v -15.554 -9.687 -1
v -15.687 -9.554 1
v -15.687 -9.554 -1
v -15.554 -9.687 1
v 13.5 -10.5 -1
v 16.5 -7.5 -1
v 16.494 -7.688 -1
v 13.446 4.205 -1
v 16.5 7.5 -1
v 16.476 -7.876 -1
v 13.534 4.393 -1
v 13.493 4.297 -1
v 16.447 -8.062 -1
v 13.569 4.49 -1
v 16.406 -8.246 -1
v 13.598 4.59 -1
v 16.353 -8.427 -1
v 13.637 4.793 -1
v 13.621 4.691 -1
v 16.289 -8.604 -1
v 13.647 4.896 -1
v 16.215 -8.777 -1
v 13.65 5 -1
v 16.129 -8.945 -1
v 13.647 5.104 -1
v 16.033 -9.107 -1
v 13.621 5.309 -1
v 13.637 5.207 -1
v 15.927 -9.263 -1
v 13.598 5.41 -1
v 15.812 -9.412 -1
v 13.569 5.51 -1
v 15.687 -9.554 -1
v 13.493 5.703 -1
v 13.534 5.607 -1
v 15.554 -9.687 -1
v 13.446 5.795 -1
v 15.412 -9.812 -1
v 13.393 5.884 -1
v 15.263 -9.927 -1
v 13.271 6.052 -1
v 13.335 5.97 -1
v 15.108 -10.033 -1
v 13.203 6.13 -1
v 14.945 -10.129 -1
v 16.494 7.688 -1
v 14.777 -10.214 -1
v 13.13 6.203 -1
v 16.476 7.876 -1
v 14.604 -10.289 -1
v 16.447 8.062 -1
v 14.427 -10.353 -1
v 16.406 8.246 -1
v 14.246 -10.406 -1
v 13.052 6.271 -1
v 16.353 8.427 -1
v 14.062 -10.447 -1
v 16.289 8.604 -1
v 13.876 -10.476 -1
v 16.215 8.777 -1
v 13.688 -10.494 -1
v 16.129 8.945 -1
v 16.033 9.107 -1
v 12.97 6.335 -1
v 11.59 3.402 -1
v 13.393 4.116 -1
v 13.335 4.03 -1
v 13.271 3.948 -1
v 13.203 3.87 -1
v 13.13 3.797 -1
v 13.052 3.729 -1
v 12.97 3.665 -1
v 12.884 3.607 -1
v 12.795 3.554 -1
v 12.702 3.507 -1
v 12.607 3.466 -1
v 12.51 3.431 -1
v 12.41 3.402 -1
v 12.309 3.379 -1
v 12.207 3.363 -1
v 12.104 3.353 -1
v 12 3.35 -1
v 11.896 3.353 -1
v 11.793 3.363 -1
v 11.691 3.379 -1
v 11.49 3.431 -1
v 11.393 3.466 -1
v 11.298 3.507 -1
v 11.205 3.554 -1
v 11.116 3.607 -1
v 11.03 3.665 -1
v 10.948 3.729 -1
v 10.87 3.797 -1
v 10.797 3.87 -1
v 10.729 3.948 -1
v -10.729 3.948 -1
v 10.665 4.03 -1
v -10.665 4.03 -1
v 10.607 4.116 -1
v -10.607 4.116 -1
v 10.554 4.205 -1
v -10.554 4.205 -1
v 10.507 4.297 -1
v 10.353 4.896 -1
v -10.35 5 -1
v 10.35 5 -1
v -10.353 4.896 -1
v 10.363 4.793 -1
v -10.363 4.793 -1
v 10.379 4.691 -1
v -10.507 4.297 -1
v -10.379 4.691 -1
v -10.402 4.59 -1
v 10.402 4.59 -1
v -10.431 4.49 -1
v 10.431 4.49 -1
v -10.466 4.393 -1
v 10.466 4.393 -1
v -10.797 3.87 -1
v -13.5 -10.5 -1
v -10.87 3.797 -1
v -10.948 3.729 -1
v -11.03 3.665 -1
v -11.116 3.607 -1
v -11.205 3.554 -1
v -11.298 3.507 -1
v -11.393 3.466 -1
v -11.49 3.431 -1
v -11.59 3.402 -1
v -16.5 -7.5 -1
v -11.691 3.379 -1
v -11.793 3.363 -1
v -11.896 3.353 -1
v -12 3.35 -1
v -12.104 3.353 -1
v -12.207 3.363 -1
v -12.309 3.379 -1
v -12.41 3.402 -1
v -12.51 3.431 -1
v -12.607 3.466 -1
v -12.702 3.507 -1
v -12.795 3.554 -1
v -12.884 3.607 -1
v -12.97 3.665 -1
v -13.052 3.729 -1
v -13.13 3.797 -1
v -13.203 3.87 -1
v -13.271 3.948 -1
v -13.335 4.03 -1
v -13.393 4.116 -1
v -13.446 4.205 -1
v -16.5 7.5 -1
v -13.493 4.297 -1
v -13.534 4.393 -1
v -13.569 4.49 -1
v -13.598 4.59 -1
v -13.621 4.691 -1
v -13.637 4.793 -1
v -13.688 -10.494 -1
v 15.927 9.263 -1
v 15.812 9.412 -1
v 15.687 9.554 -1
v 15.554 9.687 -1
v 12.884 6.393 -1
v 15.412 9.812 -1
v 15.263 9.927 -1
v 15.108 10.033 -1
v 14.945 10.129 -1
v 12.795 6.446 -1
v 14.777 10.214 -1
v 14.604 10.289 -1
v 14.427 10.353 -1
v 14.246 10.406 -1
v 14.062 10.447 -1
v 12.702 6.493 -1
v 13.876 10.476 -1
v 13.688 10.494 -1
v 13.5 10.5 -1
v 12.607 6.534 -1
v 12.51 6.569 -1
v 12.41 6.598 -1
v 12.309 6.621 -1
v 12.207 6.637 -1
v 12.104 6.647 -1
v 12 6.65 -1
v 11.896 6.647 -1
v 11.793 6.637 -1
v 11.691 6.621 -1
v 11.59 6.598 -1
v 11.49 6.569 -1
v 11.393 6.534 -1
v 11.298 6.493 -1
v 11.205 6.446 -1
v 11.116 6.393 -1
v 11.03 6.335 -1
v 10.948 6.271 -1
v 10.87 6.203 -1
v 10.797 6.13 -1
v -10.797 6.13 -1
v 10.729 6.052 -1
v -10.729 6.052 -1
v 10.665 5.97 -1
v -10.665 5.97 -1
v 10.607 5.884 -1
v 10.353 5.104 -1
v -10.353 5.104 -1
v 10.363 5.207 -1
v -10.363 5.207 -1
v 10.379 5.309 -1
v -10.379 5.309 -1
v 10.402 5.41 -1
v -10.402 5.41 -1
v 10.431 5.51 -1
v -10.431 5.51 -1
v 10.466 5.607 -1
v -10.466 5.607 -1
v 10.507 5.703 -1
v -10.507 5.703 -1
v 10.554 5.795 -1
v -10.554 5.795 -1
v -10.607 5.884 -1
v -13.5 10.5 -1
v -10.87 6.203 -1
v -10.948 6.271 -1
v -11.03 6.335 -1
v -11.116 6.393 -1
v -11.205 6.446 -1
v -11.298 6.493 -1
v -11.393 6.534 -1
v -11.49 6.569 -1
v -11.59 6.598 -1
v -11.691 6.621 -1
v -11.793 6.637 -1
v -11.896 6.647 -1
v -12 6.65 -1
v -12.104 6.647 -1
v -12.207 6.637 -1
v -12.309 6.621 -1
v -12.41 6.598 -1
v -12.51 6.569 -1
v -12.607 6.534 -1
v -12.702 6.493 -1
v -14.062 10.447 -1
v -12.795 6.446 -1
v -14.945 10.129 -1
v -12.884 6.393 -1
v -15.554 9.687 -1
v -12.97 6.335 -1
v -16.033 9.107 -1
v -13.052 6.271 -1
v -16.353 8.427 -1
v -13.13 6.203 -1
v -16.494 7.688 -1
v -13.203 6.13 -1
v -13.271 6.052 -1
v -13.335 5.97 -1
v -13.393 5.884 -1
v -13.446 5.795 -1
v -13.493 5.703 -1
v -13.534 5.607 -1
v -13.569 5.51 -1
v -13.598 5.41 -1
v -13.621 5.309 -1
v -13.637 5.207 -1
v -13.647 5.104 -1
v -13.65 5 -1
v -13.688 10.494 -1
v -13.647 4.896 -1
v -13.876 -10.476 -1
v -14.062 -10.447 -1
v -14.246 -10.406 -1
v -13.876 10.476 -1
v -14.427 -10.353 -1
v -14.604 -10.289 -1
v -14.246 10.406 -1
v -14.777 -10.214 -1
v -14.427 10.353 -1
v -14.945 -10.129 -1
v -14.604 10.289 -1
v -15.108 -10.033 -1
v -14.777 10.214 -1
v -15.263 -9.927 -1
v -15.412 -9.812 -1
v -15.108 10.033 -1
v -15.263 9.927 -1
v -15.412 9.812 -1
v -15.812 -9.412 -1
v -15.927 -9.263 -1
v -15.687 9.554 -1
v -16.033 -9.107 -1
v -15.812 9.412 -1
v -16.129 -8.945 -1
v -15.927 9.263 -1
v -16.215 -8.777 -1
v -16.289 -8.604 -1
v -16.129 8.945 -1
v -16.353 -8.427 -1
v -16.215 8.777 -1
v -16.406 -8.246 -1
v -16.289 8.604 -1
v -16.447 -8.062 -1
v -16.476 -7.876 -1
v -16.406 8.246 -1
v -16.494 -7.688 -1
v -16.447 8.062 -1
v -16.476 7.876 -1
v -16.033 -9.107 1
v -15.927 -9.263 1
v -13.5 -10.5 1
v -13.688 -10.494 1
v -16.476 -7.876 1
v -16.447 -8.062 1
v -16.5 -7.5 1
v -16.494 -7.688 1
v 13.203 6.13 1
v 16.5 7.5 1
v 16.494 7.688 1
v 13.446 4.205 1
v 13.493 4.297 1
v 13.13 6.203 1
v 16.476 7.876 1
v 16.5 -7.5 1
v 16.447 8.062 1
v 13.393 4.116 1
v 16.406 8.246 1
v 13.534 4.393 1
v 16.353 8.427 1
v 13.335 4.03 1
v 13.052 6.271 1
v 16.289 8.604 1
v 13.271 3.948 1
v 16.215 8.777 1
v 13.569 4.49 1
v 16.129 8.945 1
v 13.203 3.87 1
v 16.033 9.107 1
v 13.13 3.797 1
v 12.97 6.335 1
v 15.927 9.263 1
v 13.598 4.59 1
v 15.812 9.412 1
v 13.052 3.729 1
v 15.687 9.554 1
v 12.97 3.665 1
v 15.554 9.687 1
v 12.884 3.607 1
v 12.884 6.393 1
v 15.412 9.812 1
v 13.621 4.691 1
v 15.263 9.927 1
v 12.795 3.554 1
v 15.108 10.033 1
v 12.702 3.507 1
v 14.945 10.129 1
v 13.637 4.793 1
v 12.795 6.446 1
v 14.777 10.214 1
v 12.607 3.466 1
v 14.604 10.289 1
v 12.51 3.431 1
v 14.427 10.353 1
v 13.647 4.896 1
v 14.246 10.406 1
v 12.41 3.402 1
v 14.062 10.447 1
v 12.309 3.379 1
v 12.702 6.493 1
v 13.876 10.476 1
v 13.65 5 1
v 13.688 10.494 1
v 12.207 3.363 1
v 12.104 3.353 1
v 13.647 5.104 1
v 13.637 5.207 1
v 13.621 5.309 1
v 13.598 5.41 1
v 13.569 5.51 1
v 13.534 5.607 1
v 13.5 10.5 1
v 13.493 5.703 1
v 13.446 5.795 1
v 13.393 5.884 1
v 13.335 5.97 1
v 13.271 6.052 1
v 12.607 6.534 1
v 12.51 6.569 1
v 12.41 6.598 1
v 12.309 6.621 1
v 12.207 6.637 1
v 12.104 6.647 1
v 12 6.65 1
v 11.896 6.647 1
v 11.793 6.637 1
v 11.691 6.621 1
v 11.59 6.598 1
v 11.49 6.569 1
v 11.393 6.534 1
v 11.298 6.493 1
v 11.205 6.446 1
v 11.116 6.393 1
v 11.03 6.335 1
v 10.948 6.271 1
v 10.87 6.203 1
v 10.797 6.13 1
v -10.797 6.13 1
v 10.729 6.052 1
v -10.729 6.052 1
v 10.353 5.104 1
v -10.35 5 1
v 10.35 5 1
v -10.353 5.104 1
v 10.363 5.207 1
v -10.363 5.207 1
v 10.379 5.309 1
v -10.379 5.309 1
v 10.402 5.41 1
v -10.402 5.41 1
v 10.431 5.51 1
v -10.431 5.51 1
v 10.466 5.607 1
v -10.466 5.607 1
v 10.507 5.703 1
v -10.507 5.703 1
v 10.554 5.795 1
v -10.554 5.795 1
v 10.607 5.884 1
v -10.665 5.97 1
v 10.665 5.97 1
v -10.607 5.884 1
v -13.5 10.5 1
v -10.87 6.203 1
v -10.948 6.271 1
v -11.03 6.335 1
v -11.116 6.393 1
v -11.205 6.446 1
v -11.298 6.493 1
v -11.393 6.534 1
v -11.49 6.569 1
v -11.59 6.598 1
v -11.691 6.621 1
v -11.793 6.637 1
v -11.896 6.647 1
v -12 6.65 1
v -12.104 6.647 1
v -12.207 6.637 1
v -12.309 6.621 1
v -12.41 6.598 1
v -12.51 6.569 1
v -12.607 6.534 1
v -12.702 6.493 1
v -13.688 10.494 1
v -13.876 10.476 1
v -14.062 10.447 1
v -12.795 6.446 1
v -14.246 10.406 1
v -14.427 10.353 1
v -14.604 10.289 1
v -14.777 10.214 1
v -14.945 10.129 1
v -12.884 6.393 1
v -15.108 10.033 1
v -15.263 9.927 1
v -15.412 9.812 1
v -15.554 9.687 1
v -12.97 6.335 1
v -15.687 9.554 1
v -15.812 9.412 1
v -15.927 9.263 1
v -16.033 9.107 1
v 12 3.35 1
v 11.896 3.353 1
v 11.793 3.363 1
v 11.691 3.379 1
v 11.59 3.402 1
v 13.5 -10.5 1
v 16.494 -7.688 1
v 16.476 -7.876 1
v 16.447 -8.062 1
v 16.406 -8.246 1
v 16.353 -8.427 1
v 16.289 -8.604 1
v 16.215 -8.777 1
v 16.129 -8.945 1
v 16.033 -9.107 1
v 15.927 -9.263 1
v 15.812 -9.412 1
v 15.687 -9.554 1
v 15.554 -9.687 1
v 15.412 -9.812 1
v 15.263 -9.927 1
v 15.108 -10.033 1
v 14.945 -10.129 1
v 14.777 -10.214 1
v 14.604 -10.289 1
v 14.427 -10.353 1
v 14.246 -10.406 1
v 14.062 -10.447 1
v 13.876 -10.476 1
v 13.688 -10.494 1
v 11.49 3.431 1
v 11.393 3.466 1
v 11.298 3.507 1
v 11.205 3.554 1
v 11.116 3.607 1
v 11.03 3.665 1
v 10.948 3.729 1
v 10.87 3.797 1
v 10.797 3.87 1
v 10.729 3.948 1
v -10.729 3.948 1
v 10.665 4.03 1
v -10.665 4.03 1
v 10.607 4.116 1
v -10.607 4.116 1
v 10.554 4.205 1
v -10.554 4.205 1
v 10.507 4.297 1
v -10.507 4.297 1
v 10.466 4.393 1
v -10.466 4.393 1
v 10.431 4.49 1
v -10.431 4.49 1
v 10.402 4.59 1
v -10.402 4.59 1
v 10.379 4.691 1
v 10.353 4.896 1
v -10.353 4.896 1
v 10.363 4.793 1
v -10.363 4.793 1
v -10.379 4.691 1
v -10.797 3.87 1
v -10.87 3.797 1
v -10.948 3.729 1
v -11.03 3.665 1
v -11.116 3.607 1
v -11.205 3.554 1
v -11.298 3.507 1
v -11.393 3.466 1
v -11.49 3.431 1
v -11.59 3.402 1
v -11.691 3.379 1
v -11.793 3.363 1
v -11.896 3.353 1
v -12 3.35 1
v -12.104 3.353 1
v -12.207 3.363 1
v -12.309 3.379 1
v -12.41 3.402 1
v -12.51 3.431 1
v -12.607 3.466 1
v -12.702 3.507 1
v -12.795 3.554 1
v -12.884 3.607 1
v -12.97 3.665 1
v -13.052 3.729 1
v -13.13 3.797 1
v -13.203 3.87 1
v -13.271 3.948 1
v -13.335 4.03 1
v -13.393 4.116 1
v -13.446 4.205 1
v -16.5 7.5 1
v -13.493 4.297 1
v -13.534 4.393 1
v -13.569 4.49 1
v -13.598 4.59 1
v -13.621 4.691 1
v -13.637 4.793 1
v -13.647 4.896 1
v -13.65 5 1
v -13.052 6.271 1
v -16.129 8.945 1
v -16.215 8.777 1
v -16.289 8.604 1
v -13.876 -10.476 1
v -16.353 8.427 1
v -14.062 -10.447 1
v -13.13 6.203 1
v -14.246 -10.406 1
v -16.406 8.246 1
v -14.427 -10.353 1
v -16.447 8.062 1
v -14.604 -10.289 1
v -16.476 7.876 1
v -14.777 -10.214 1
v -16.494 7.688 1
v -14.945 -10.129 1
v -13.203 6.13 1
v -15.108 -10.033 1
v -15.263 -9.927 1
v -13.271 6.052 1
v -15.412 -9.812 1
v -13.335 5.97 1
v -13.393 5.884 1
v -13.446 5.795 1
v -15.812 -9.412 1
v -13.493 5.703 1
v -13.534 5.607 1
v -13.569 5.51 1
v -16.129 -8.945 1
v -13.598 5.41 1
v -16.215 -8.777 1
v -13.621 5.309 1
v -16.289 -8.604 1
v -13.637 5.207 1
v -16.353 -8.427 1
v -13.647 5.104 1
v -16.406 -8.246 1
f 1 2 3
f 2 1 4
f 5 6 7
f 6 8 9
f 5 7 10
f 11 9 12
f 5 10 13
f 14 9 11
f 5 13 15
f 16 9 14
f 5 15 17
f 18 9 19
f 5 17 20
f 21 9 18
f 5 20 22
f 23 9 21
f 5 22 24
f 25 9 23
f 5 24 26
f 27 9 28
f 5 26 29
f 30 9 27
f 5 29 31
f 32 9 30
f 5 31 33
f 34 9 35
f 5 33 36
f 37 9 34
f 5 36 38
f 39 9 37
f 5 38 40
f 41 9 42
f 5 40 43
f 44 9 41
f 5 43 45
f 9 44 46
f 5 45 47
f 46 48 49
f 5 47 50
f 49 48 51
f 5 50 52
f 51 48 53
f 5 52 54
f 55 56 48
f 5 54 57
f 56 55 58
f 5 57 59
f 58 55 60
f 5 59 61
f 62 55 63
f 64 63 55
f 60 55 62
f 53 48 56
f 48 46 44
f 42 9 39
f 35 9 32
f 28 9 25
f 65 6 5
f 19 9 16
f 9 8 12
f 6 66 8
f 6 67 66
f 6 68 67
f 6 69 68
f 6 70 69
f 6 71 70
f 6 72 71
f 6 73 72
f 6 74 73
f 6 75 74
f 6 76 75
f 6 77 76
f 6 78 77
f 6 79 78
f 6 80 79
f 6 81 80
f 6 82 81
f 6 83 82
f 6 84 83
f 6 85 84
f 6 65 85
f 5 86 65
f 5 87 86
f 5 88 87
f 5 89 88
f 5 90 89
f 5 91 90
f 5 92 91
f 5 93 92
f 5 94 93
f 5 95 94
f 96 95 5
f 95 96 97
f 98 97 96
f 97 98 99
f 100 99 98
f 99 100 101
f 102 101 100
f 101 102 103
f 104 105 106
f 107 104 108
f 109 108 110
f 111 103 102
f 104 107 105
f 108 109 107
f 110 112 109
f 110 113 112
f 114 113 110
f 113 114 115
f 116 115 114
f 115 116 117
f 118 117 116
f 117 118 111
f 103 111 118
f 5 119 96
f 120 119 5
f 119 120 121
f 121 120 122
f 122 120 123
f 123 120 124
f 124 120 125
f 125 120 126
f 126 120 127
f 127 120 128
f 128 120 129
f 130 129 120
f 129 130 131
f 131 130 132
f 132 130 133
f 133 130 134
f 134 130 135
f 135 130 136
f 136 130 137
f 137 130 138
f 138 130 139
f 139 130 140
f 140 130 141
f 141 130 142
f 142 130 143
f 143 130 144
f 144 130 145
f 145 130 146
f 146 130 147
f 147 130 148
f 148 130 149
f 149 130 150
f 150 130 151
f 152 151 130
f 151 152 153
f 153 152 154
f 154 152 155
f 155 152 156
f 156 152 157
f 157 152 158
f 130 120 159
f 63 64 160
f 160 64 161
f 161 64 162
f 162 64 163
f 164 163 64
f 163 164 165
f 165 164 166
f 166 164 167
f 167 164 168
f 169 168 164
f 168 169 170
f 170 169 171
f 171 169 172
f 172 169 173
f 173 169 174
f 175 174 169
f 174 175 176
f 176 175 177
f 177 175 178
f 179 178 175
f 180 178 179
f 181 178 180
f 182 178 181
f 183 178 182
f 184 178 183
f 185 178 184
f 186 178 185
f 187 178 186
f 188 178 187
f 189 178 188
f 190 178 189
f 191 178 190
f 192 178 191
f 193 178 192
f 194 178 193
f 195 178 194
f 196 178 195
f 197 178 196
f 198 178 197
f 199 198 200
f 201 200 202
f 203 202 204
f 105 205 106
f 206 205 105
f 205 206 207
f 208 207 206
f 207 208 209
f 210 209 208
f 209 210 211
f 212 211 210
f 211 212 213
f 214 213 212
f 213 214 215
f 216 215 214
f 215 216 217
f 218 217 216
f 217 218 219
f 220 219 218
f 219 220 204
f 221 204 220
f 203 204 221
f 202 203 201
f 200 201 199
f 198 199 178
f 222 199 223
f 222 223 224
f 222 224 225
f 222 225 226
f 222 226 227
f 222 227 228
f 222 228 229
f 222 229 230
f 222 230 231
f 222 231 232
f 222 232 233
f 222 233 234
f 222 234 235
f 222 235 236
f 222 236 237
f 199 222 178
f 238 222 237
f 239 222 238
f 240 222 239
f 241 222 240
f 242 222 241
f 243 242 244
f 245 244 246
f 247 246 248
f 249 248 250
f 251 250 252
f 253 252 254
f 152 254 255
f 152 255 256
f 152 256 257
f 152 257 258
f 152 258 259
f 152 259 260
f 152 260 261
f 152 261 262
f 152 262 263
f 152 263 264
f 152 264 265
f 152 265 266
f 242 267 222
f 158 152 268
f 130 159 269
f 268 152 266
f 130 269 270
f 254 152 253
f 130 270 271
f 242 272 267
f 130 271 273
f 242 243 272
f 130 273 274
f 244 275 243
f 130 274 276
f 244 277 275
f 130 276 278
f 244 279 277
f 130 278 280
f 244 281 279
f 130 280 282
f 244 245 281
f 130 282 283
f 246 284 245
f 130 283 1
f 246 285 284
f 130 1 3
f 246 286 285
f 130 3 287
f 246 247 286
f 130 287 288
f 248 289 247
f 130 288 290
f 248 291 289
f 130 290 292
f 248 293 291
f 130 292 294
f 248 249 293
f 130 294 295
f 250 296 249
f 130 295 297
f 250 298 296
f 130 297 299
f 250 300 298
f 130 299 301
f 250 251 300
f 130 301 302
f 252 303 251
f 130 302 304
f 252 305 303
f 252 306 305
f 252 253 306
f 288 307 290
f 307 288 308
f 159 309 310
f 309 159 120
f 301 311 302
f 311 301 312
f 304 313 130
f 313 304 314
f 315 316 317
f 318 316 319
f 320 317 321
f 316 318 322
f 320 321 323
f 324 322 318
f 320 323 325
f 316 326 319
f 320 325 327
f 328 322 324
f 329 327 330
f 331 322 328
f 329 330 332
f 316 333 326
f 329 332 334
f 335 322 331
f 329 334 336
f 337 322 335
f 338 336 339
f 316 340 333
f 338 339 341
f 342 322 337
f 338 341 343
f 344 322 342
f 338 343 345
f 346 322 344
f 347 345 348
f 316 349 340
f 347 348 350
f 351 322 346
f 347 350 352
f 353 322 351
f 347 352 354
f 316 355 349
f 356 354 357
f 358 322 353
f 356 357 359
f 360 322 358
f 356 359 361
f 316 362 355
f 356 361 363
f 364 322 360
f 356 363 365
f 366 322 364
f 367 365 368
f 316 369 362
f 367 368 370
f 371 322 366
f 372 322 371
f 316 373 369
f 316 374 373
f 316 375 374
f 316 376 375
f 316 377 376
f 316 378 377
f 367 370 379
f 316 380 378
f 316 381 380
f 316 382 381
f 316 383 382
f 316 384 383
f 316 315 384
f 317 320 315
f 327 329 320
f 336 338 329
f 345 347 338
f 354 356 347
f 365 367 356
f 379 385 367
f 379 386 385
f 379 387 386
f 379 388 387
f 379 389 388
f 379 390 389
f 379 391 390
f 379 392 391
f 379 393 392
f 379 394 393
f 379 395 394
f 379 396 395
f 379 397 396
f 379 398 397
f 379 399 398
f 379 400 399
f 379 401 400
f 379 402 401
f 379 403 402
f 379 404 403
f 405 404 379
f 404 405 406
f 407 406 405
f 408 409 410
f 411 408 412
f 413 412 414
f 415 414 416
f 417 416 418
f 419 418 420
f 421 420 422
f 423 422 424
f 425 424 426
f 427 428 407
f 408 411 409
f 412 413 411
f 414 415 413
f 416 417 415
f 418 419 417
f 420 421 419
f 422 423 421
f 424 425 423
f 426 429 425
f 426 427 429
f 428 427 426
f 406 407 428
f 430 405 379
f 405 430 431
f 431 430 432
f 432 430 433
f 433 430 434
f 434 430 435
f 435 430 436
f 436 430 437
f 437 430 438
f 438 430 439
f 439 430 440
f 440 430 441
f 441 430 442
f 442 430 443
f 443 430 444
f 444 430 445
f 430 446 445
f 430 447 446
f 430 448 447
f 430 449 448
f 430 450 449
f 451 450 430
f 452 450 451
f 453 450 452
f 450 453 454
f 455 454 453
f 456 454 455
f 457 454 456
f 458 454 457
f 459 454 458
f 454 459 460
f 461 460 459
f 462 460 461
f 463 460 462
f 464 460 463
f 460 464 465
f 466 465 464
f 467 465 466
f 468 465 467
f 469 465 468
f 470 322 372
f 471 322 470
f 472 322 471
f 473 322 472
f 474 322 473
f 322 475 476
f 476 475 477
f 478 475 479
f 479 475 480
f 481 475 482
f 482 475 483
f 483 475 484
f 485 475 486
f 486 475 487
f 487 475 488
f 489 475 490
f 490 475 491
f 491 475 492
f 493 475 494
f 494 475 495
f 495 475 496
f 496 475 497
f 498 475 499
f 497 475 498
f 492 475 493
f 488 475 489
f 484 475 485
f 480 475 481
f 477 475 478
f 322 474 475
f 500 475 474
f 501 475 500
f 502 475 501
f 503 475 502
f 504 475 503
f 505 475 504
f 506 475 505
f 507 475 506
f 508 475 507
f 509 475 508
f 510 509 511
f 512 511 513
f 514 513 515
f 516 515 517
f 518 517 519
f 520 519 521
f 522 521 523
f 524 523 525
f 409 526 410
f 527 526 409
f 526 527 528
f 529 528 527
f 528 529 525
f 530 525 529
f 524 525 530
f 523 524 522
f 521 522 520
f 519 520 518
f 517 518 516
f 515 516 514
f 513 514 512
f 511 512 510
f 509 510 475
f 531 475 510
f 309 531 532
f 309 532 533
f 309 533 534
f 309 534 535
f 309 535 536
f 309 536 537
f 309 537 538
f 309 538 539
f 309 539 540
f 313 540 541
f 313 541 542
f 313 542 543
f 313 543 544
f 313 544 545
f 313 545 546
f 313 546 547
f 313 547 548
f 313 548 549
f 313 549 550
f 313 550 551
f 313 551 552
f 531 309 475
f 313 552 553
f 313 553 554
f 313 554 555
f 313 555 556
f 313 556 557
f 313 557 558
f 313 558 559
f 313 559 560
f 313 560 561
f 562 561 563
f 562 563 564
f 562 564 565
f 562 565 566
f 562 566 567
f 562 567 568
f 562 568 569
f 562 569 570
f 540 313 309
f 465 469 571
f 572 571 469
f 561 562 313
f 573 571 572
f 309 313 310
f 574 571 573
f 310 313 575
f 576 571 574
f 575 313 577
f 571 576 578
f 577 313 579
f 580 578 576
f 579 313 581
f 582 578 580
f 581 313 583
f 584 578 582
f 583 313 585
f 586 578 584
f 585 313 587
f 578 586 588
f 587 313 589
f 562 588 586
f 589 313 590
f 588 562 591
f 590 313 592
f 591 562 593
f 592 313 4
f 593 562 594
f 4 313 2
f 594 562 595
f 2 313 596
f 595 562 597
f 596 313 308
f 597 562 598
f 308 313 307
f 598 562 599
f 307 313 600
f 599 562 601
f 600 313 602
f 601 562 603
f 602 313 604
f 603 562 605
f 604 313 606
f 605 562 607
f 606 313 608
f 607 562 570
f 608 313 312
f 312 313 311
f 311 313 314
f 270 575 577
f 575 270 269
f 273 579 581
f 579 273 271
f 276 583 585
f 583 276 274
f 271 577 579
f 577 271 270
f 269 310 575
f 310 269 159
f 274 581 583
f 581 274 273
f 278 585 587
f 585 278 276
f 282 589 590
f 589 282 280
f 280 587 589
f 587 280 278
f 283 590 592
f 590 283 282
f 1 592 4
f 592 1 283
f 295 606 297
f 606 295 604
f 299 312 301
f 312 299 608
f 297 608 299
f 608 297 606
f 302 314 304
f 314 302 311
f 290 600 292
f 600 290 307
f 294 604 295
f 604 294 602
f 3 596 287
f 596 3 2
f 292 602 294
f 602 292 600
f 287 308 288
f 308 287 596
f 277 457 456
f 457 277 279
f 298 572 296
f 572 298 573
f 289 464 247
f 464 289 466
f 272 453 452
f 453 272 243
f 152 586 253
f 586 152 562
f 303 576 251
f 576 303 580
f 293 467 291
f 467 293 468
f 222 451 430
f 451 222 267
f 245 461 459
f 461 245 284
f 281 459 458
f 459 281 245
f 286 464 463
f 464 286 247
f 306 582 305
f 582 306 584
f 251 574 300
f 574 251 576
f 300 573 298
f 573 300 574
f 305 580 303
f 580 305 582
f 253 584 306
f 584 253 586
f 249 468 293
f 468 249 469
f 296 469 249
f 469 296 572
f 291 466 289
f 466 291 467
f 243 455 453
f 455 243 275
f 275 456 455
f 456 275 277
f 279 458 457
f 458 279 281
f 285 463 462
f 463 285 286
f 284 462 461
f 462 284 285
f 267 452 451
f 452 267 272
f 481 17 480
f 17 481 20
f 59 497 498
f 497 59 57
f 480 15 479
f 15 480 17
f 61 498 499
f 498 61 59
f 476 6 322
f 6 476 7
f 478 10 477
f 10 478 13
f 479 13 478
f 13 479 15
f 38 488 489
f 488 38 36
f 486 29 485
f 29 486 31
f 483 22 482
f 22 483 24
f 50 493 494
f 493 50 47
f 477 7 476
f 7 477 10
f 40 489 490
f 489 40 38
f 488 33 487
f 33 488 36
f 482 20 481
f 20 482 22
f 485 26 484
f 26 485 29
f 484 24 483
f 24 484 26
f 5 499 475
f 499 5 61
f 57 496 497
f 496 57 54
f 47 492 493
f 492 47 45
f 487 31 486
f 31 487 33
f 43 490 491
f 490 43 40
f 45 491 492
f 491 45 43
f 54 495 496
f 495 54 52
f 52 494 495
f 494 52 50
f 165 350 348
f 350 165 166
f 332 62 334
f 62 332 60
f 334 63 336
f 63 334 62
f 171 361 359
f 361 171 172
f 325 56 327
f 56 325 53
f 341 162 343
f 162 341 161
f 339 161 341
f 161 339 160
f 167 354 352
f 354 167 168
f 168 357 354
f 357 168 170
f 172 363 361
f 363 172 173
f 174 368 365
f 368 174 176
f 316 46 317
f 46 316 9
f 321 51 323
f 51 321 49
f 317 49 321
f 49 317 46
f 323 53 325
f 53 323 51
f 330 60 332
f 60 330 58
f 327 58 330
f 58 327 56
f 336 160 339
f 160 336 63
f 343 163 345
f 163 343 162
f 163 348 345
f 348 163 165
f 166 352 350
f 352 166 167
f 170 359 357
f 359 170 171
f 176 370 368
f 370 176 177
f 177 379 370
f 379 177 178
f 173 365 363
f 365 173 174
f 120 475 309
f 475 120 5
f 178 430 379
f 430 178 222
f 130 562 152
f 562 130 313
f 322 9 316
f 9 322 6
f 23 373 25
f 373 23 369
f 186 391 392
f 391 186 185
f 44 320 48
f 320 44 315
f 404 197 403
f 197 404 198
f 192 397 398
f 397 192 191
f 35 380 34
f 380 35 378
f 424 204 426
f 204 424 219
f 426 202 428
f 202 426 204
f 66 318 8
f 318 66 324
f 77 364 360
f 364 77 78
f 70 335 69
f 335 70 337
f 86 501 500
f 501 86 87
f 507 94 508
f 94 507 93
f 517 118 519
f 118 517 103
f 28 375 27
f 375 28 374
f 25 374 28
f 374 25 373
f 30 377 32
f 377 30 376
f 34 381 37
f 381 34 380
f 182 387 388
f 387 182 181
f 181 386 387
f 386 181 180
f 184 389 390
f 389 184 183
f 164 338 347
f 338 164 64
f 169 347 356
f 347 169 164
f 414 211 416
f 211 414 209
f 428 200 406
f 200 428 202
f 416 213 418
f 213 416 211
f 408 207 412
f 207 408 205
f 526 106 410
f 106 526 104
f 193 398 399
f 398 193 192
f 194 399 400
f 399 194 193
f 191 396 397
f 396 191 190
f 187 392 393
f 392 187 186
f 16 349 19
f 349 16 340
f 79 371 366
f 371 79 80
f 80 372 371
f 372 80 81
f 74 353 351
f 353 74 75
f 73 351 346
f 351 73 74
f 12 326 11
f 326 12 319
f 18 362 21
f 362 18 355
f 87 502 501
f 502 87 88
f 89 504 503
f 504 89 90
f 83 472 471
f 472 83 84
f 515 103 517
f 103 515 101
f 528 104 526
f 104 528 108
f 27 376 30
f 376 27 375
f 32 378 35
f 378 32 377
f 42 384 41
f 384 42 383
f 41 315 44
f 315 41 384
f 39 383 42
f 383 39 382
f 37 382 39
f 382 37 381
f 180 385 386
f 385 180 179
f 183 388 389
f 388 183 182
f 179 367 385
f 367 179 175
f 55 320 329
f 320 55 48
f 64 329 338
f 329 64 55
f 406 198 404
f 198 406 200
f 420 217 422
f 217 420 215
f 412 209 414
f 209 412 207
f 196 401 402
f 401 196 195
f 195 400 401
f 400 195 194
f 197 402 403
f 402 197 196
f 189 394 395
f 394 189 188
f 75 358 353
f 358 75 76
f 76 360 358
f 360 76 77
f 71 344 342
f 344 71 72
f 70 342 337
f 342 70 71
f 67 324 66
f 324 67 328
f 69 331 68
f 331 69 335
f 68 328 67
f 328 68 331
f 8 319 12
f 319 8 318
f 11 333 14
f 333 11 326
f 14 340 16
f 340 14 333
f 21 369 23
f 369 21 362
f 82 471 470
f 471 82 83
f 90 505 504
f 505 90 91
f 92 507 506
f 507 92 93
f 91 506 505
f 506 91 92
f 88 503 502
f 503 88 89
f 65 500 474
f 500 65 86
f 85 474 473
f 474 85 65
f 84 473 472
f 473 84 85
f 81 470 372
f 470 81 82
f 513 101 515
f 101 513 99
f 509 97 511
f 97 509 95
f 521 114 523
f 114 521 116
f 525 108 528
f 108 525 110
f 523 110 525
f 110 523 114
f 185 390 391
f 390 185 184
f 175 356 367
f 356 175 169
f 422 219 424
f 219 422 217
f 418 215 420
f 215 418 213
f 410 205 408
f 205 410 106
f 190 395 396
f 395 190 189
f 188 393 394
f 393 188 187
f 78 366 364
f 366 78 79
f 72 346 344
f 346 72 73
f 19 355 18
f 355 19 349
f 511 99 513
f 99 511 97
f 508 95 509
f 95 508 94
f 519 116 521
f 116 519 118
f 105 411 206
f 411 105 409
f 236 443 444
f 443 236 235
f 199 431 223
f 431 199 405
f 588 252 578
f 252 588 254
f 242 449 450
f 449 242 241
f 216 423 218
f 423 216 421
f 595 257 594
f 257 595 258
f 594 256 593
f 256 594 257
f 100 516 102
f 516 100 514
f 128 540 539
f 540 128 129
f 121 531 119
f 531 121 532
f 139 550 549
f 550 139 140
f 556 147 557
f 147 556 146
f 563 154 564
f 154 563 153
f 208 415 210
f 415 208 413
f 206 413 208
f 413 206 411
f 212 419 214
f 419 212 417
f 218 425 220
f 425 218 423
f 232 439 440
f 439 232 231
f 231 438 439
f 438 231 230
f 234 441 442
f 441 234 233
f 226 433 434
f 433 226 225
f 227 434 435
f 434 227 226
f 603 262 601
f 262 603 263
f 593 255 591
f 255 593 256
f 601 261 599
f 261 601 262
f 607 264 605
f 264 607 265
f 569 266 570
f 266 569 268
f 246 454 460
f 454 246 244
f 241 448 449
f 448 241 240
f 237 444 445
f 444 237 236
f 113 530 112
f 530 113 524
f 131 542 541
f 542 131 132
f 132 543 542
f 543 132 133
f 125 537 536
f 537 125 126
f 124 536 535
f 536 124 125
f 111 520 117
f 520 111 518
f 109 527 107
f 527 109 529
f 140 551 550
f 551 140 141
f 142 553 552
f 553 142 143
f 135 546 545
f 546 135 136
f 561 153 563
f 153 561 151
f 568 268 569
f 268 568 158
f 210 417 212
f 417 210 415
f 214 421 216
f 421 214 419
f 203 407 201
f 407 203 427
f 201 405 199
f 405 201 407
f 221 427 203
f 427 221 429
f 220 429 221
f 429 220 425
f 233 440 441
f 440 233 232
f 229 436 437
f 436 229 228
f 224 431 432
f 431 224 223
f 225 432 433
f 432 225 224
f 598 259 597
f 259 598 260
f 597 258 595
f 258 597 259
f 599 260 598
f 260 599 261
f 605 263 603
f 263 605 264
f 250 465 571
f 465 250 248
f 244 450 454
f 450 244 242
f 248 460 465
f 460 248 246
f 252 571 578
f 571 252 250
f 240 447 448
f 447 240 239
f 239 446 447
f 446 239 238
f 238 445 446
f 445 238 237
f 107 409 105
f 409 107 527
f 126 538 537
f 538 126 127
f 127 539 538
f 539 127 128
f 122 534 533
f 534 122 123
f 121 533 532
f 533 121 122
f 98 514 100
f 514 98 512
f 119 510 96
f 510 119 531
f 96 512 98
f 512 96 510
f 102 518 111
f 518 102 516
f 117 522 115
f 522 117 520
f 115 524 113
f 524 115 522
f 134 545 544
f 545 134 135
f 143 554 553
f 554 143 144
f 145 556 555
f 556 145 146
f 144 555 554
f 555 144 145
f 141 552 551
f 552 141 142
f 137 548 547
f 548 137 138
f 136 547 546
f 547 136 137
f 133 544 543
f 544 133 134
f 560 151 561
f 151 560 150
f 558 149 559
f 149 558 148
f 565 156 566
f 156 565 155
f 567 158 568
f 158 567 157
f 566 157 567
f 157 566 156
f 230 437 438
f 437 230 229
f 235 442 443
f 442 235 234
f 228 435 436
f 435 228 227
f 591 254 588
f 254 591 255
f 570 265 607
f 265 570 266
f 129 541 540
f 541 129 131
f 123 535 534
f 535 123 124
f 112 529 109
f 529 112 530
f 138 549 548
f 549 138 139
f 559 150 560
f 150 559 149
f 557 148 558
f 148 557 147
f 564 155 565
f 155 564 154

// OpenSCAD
include <MCAD/boxes.scad>
$fn=100;
difference(){
   roundedBox(size = [33,21,2] , radius = 3, sidesonly = 1);
   translate([12,5,-1])
     cylinder(d=3.3,h=2);
   translate([-12,5,-1])
     cylinder(d=3.3,h=2);
 
}
